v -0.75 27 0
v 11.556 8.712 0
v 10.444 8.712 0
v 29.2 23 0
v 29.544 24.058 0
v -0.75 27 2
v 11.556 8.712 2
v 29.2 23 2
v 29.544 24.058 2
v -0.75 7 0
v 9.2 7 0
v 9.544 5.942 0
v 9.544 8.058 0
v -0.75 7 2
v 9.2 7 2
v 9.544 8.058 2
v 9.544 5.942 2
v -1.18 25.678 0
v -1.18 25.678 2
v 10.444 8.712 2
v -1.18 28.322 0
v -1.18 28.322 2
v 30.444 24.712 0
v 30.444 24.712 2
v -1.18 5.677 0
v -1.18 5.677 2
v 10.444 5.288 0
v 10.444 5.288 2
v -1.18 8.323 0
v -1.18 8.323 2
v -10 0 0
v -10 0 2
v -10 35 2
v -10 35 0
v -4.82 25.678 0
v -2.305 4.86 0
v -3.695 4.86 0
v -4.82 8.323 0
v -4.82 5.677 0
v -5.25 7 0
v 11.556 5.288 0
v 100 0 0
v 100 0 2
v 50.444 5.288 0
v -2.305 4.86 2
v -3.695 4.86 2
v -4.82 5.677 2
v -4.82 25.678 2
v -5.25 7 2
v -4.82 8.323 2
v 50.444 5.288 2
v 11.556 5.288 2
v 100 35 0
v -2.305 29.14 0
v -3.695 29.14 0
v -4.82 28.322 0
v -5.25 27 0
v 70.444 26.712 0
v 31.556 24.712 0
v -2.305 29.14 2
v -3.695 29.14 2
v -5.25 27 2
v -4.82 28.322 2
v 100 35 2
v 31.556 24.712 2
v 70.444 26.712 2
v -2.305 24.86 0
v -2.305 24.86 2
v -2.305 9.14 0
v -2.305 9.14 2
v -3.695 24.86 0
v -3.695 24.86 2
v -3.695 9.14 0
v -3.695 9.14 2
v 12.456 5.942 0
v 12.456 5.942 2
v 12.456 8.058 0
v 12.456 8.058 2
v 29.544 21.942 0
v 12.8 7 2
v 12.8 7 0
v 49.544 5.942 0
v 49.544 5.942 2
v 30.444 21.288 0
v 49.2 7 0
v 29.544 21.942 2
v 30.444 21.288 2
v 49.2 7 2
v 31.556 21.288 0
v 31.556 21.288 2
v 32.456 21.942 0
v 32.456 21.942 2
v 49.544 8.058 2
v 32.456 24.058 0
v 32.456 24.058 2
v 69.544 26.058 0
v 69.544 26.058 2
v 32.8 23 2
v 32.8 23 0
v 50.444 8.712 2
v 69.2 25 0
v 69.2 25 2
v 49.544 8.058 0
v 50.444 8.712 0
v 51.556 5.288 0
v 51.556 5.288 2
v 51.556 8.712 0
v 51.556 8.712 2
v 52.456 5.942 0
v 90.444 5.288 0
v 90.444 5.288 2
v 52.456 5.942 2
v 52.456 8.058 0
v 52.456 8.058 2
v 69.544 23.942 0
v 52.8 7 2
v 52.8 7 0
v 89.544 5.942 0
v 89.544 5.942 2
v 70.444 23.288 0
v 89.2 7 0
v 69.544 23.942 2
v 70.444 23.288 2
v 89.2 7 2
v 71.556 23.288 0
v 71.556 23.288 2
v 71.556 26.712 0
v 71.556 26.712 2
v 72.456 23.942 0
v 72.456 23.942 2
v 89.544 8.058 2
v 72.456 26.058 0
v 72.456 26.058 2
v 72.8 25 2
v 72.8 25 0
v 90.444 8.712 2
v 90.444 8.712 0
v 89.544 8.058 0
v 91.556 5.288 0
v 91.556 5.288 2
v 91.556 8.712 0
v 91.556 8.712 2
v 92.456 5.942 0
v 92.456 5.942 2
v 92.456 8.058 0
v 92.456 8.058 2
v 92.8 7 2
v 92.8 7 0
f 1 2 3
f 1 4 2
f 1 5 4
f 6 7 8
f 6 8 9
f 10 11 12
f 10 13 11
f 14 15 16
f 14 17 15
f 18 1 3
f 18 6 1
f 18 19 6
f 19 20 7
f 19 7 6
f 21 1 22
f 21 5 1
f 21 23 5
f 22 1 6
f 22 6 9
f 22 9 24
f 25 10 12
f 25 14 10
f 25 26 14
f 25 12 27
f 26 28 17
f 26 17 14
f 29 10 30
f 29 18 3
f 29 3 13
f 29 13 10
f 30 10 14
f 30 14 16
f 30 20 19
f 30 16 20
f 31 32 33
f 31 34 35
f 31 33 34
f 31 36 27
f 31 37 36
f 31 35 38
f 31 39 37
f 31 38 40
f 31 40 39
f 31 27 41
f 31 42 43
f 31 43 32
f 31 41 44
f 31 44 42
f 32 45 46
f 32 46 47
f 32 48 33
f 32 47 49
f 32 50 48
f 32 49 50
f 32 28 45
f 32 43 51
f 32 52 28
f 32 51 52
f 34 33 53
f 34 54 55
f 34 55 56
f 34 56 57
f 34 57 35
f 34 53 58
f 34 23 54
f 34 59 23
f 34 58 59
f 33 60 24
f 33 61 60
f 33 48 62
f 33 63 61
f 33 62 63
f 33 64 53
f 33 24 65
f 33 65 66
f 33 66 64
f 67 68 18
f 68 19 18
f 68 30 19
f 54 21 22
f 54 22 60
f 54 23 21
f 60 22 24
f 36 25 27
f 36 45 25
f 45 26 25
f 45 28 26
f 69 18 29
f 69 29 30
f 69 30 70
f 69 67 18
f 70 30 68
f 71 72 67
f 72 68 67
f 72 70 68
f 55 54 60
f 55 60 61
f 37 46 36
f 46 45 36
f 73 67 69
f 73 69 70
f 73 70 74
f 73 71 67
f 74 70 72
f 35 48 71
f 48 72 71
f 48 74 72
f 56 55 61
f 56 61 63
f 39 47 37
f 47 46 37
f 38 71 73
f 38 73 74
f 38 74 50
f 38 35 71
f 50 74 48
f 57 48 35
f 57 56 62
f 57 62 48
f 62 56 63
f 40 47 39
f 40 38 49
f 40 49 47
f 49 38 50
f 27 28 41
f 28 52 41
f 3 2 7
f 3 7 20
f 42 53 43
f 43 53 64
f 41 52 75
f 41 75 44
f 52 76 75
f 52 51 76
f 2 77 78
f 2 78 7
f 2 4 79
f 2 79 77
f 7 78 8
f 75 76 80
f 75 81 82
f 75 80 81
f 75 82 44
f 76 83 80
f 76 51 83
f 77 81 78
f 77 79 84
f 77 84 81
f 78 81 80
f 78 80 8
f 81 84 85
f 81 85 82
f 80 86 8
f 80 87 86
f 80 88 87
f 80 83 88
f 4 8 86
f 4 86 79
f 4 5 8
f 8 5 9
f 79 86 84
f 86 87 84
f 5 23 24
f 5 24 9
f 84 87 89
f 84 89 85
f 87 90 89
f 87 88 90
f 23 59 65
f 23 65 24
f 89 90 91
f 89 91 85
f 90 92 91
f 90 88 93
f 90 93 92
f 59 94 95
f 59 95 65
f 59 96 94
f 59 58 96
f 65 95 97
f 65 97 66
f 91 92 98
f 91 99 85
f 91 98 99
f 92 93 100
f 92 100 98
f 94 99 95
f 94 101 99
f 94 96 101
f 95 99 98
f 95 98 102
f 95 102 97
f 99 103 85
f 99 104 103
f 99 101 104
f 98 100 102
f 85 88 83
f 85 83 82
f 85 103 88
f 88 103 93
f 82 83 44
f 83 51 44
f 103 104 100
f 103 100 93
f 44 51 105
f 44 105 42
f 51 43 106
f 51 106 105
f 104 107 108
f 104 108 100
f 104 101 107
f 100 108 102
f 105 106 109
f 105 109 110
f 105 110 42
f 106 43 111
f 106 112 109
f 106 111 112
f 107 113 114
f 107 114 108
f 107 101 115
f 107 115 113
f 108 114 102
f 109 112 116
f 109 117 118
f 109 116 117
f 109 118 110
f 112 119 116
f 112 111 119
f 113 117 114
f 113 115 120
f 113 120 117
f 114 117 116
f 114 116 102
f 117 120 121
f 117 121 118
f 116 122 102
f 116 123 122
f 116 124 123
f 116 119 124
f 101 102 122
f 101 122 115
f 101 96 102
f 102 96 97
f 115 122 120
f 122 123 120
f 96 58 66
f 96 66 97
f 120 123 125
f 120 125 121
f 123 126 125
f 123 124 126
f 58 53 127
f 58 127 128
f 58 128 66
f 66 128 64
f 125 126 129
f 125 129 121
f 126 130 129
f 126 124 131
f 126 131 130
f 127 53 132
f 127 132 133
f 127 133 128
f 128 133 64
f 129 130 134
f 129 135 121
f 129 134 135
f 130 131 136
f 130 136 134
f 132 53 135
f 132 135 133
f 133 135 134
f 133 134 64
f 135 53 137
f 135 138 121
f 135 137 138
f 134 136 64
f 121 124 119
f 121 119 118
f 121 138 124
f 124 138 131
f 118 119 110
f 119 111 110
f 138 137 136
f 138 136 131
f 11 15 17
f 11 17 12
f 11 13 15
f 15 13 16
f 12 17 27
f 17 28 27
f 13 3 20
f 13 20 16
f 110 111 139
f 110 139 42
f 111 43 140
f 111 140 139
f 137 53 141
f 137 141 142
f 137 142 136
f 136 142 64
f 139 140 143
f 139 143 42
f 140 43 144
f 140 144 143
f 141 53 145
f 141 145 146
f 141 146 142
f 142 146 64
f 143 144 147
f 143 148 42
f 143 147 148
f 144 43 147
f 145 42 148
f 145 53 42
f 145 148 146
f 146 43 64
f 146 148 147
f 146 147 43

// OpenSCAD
// file: ../Parameters.scad
//Main tube diameter - hole [mm]
main_tube_outer_diameter = 25.4;
main_tube_inner_diameter = 23.5;

//Tube for undercarriage - hole [mm]
tube_for_undercarriage_outer_diameter = 10.6;
tube_for_undercarriage_inner_diameter = 6;
global_clearance = 0.5;


//umístění podvozkových trubek

second_undercarriage_hole = main_tube_outer_diameter*2 + main_tube_outer_diameter/5 + main_tube_outer_diameter/2 + 170 + 160;

// Parameters of cube couplings
coupling_wall_thickness = main_tube_outer_diameter/5;  //width of coupling walls 
thickness_between_tubes = main_tube_outer_diameter/10;    // minimum distance between tubes in couplings

coupling_wall_thickness_undercarriage = tube_for_undercarriage_outer_diameter/3;
thickness_between_tubes_undercarriage = tube_for_undercarriage_outer_diameter/10;

//Screw diameter and nut for M4 [mm]
M4_screw_diameter=4.5;
Nut_height_M4 = 3.2;
Nut_diameter_M4 = 7.86;


//Screw diameter and nut for M3 [mm]
M3_screw_diameter = 3.2;
Nut_height_M3 = 1.7;	
Nut_diameter_M3 = 6.6; 


//The tube for help
Help_main_tube_outer = 25;
Help_main_tube_inner = 23; 
Help_tube_for_undercarriage_outer = 10;
Help_tube_for_undercarriage_inner = 5;


//main hull parameters

hull_drop_length = 580;
hull_wall_thickness = 0.8;
hull_y_size = 120;
hull_z_size = 150;
hull_x_size = 580;
hull_corner_radius = 4;
hull_airfoil_thickness= 35;  // thickness of drop generating airfoil in percent of lenght.
hull_scale_x = 1;
hull_scale_y = 1.5;
hull_scale_z = 1.5;

main_pilon_position = 170+68;
cover_pilon_position = 180;
height_of_vertical_tube = 275; //278mm je změřená délka trubky. 

ribbon_width = 5; // šířka vyztužovacích lemů. 

// šířka otvoru v přední části kapoty pro držák motoru.
width_of_engine_holder = 63;

//Top Cover Division - dělení horního krytu pro tisk
top_cover_division = [0, 50, 150, 280, 410, hull_x_size]; // upraveny seznam tak, aby deleni začinalo od nuly, což umožňí úplně automatické rozdělení.

//Bottom Cover Division - dělení dolního krytu pro tisk
bottom_cover_division = [0,100,250,365, 470, hull_x_size];
// zkrácená část pro payload pro testovací tisk
//bottom_cover_division = [0,200,250,365, 470, hull_x_size];

//Base Divison - dělení podložky
base_division = [0,140,280,410, hull_x_size];

//Cover pilon division - na výšku (v ose Z)
cover_pilon_division = [0,170,height_of_vertical_tube + main_tube_outer_diameter + coupling_wall_thickness];

//pozice šroubů
	//horní kryt
top_screw_position = [0, (top_cover_division[0] + top_cover_division[1])/4, (top_cover_division[2] - top_cover_division[1])/2 + top_cover_division[1], (top_cover_division[3] - top_cover_division[2])/2 + top_cover_division[2],(top_cover_division[4] - top_cover_division[3])/2 + top_cover_division[3],(top_cover_division[5] - top_cover_division[4])/2 + top_cover_division[4] - 20];
	//spodní kryt
bottom_screw_position = [0,(bottom_cover_division[0] + bottom_cover_division[1])/15 + 5, bottom_cover_division[1]/1.1, + bottom_cover_division[3], bottom_cover_division[3] + bottom_cover_division[1]/2, bottom_cover_division[4] - 6*global_clearance, bottom_cover_division[4] + bottom_cover_division[1]/2.5];




//šířka zámků
lock_width = 10;

//délka zámků
lock_length = 3;


//accumulator
//základní rozměry akumulátoru
width_of_accumulator = 129.4;//45+1;
depth_of_accumulator = 40.61;
height_of_accumulator = 43.65;
//Zapuštění akumulátoru
sink_of_accumulator = 5; //main_tube_outer_diameter/5 - Nut_height_M3*1.5;

//tloušťka hrany spojky
accumulator_holder_width = 18; 
accumulator_holder_thickness = 10; 

//posunutí akumálátoru na podložce
move_of_accumulator = 165;   // pozice akumulátoru (ovlivňuje těžiště)


////////////////
// Senzory
///////////////////

//opticalFlow
    width_optical_flow_senzor = 45.5;
    depth_optical_flow_senzor = 6;
    height_optical_flow_senzor = 35;
    sink_of_optical_flow_senzor = depth_optical_flow_senzor - 5; 
    M3_optical_flow_senzor_Z = 30.4;
    M3_optical_flow_senzor_X = 24;
    M3_optical_flow_senzor_Z_alone = 9.1;
    M3_optical_flow_senzor_X_alone = 16.7;
// file: lib/naca4.scad
// Naca4.scad - library for parametric airfoils of 4 digit NACA series
// Code: Rudolf Huttary, Berlin 
// June 2015
// commercial use prohibited


// general use: for more examples refer to sampler.scad
// naca = naca digits or 3el vector  (default = 12 or [0, 0, .12])
// L    = chord length [mm]      (default= 100)
// N    = # sample points        (default= 81)
// h    = height [mm]            (default= 1)
// open = close at the thin end? (default = true)
// two equivalent example calls
 airfoil(naca = 2408, L = 60, N=1001, h = 30, open = false); 
// airfoil(naca = [.2, .4, .32], L = 60, N=1001, h = 30, open = false); 

module help()
{
  echo(str("\n\nList of signatures in lib:\n=================\n", 
  "module airfoil(naca=2412, L = 100, N = 81, h = 1, open = false) - renders airfoil object\n", 
  "module airfoil(naca=[.2, .4, .12], L = 100, N = 81, h = 1, open = false) - renders airfoil object using percentage for camber,  camber distance and thicknes\n", 
  "function airfoil_data(naca=12, L = 100, N = 81, open = false)\n",
  "=================\n")); 
}

help(); 
// this is the object
module airfoil(naca=12, L = 100, N = 81, h = 1, open = false)
{
  linear_extrude(height = h)
  polygon(points = airfoil_data(naca, L, N, open)); 
}

module hollow_airfoil(lnaca=12, L = 100, N = 81, h = 1, open = false, wall_thickness = 1)
{
    if (open){
        linear_extrude(height = h)

        if (wall_thickness>0){
            difference(){
                polygon(points = airfoil_data(naca, L, N, false));
                offset(delta = - wall_thickness, chamfer = false) polygon(points = airfoil_data(naca, L, N, open = false));
            }
        }
        else{
            difference(){
                offset(delta = - wall_thickness, chamfer = false) polygon(points = airfoil_data(naca, L, N, open = false));
                polygon(points = airfoil_data(naca, L, N, false));
            }
        }
    }
    else{

        linear_extrude(height = abs(wall_thickness))
            polygon(points = airfoil_data(naca, L, N, false)); 

        linear_extrude(height = h)
            difference(){
                polygon(points = airfoil_data(naca, L, N, open));
                offset(delta = - wall_thickness) polygon(points = airfoil_data(naca, L, N, open = false));
            }

        translate([0,0, h - wall_thickness])
            linear_extrude(height = abs(wall_thickness))
                polygon(points = airfoil_data(naca, L, N, false)); 

    }
}


// this is the main function providing the airfoil data
function airfoil_data(naca=12, L = 100, N = 81, open = false) = 
  let(Na = len(naca)!=3?NACA(naca):naca)
  let(A = [.2969, -0.126, -.3516, .2843, open?-0.1015:-0.1036])
  [for (b=[-180:360/(N):179.99]) 
    let (x = (1-cos(b))/2)  
    let(yt = sign(b)*Na[2]/.2*(A*[sqrt(x), x, x*x, x*x*x, x*x*x*x])) 
    Na[0]==0?L*[x, yt]:L*camber(x, yt, Na[0], Na[1], sign(b))];  


function trailing_edge_angle(naca=12, open = false) = 
  let(Na = len(naca)!=3?NACA(naca):naca)
  let(A = [.2969, -0.126, -.3516, .2843, open?-0.1015:-0.1036])
  let (x =0.999)  // set x near to airfoil trailing edge
  let(yt = Na[2]/.2*(A*[sqrt(x), x, x*x, x*x*x, x*x*x*x])) // calculate distance from x-axis at previously set position
  atan2(yt,1-x);  // calculate angle of triangle between end of airfoil. The triange height corresponds to previously calculated distance from x-axis

function surface_angle(x = 0.5, naca=12, open = false) = 
  let(Na = len(naca)!=3?NACA(naca):naca)
  let(A = [0.2969, -0.126, -0.3516, 0.2843, open?-0.1015:-0.1036])
  let(dy = Na[2]/0.2*(A*[(1/2)*(1/sqrt(x)), 1, 2*x, 3*x*x, 4*x*x*x])) // calculate derivative of airfoil function at the x point
  atan(dy);  // calculate  the angle from function derivative

function surface_distance(x = 0.5, naca=12, open = false) = 
  let(Na = len(naca)!=3?NACA(naca):naca)
  let(A = [0.2969, -0.126, -0.3516, 0.2843, open?-0.1015:-0.1036])
  Na[2]/.2*(A*[sqrt(x), x, x*x, x*x*x, x*x*x*x]); // calculate distance from x-axis at previously set position

// helper functions
function NACA(naca) = 
  let (M = floor(naca/1000))
  let (P = floor((naca-M*1000)/100)) 
  [M/100, P/10, floor(naca-M*1000-P*100)/100];  

function camber(x, y, M, P, upper) = 
  let(yc = (x<P)?M/P/P*(2*P*x-x*x): M/(1-P)/(1-P)*(1 - 2*P + 2*P*x -x*x))
  let(dy = (x<P)?2*M/P/P*(P-x):2*M/(1-P)/(1-P)*(P-x))
  let(th = atan(dy))
  [upper ? x - y*sin(th):x + y*sin(th), upper ? yc + y*cos(th):yc - y*cos(th)];
// main file
use <./lib/naca4.scad>
include <../Parameters.scad>


module 666_1206(){
	union(){
		difference(){
            translate([-10,0,0])
			cube([110,35,2]);

            // díry pro uchycení rotorového listu
			translate([100-9,7,-1])
				cylinder (h = 10, r = 3.6/2, $fn = 10);

			translate([100-9-20,25,-1])	
				cylinder (h = 10, r = 3.6/2, $fn = 10);

			translate([100-9-20-20,7,-1])	
				cylinder (h = 10, r = 3.6/2, $fn = 10);

			translate([100-9-20-20-20,23,-1])	
				cylinder (h = 10, r = 3.6/2, $fn = 10);

			translate([100-9-20-20-20-20,7,-1])	
				cylinder (h = 10, r = 3.6/2, $fn = 10);

            //díry pro přišroubování závěsu rotorového listu. 

            translate([-10+7,7,-1]) 
                cylinder (h = 10, r = M4_screw_diameter/2, $fn = 10);

            translate([-10+7,27,-1]) 
                cylinder (h = 10, r = M4_screw_diameter/2, $fn = 10);

		}
	}
}
666_1206();
